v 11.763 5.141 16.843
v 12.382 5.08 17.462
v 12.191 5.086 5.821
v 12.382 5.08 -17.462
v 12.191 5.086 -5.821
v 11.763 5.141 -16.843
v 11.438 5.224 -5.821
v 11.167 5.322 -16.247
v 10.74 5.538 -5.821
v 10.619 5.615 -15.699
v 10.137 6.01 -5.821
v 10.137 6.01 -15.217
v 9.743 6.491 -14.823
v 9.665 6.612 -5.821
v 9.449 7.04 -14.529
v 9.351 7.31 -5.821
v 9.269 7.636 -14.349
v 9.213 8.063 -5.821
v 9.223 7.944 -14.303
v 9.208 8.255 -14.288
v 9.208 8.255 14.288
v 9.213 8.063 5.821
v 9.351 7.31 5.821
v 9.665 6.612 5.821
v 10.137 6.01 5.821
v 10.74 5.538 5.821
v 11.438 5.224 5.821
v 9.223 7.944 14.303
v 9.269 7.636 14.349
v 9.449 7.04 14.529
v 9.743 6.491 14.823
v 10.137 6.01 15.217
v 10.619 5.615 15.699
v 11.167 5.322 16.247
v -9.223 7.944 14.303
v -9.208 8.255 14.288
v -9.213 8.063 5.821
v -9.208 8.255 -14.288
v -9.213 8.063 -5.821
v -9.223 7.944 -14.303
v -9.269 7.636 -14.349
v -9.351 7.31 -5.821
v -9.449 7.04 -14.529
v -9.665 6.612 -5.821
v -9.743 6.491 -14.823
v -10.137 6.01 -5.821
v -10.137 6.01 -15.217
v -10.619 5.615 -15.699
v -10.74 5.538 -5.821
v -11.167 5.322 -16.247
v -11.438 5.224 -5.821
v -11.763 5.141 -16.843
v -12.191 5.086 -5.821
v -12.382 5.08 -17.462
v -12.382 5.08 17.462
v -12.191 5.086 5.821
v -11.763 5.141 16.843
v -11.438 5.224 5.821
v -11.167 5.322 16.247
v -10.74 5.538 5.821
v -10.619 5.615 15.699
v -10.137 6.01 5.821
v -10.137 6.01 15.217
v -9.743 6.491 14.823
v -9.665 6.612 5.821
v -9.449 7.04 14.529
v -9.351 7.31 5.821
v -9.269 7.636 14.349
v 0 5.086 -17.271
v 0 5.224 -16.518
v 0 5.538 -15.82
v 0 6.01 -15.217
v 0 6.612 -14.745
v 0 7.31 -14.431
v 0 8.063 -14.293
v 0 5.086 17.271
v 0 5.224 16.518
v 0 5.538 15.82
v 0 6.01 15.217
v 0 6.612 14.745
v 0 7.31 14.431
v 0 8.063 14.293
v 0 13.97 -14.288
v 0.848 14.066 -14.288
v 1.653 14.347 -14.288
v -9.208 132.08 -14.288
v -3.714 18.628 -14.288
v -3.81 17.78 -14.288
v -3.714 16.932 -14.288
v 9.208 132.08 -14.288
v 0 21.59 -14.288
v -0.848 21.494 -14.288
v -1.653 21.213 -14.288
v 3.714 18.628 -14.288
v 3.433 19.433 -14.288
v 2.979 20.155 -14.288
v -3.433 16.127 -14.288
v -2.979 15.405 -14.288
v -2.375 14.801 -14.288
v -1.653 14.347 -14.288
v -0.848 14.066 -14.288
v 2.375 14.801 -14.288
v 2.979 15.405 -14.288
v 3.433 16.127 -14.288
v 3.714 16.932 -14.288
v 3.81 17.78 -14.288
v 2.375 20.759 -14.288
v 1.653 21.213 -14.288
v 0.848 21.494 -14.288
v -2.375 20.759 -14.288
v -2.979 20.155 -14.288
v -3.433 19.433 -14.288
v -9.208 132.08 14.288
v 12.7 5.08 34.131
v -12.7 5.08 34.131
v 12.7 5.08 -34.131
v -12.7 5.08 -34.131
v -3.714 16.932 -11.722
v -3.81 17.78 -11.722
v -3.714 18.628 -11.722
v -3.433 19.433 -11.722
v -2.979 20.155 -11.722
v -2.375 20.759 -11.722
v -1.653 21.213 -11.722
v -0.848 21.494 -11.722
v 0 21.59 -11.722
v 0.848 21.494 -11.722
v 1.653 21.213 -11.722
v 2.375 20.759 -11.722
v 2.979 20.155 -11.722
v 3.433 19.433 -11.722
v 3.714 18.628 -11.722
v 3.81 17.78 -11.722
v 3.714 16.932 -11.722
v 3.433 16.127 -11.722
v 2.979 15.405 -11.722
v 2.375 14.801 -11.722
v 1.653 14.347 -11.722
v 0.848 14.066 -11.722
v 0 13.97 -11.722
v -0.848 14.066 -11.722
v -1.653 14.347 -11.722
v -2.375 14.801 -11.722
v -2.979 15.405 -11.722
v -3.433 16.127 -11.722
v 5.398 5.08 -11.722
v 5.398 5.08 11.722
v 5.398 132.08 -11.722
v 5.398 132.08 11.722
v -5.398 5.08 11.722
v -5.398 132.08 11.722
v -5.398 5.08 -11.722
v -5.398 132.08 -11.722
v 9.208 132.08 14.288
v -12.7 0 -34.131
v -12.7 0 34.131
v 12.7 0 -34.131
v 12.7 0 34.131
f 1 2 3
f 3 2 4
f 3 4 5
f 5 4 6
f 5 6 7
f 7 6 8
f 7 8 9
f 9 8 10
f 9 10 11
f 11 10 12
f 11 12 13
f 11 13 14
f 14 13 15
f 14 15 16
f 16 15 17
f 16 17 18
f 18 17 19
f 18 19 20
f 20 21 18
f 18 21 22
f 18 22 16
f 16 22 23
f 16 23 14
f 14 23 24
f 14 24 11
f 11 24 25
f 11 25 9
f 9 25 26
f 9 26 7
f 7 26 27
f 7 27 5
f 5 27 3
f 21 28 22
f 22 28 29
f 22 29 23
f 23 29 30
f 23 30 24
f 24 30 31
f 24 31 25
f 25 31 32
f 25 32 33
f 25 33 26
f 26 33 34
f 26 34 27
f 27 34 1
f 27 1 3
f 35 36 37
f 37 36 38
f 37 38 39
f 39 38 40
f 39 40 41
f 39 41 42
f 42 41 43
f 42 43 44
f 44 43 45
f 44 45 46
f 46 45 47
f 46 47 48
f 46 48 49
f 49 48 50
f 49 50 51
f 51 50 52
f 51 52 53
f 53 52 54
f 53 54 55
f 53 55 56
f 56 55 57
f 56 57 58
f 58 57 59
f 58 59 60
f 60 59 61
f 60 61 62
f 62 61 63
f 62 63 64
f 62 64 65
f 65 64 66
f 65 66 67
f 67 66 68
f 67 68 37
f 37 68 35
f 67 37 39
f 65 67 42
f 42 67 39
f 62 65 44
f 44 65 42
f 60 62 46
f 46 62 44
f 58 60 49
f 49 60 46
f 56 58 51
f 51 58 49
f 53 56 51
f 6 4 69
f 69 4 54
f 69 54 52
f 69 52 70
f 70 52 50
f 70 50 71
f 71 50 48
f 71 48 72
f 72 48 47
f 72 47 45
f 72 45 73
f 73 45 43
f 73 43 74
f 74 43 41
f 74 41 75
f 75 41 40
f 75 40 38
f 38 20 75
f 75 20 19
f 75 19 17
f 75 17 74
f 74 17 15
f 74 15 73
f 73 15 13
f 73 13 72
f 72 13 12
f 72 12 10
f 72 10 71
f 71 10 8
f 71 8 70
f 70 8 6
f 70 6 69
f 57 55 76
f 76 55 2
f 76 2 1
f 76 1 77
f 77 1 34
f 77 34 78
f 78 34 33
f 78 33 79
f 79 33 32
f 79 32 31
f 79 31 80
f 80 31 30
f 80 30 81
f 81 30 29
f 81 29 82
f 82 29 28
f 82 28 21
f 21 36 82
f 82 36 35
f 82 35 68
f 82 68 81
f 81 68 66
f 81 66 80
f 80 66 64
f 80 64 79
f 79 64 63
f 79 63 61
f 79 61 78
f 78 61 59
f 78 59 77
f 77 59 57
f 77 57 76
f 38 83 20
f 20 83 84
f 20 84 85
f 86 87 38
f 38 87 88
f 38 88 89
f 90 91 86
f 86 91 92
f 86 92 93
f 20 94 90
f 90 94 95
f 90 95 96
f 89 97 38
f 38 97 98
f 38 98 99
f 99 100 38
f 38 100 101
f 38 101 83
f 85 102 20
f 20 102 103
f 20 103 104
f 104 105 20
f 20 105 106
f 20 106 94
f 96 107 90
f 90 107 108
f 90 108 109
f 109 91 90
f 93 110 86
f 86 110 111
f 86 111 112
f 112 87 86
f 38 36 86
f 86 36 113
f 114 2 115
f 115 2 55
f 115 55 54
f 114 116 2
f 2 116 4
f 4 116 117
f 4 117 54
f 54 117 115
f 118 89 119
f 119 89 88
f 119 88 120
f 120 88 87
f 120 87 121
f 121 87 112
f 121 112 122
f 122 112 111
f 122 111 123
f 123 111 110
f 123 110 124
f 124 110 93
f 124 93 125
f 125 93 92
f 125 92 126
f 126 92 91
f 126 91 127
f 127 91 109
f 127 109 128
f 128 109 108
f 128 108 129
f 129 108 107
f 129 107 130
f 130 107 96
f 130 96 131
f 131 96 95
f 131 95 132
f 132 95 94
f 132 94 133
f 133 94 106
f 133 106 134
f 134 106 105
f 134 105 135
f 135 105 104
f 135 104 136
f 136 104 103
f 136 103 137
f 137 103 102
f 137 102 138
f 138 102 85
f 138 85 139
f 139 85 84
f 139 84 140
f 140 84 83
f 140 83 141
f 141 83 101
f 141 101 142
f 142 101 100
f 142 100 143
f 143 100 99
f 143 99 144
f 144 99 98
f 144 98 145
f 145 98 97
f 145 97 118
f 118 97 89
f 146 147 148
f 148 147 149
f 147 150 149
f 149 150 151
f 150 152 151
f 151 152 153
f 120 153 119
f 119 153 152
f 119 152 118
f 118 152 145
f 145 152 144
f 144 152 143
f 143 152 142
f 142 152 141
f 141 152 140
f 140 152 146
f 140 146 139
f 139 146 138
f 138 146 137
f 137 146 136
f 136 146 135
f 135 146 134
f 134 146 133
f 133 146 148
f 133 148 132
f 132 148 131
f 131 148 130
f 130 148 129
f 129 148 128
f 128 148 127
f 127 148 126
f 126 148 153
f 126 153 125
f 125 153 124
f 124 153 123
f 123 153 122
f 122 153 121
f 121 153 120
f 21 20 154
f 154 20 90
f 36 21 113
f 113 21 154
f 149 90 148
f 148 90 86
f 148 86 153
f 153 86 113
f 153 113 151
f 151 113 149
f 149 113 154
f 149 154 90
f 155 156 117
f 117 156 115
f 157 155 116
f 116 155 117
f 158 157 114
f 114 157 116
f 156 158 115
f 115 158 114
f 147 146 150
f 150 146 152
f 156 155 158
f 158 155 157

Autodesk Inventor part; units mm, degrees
ref_plane "YZ Plane" through (0, 0, 0) normal (1, 0, 0) x (0, 1, 0)
ref_plane "XZ Plane" through (0, 0, 0) normal (0, 1, 0) x (-1, 0, 0)
ref_plane "XY Plane" through (0, 0, 0) normal (0, 0, 1) x (1, 0, 0)
sketch "Sketch1" plane through (0, 0, 0) normal (0, 1, 0) x (-1, 0, 0)
  line L0 (12.7, 34.1313) -> (-12.7, 34.1313)
  line L1 (-12.7, 34.1313) -> (-12.7, -34.1313)
  line L2 (-12.7, -34.1313) -> (12.7, -34.1313)
  line L3 (12.7, -34.1313) -> (12.7, 34.1313)
  line L4 (12.7, 34.1313) -> (-12.7, -34.1313) construction
  line L5 (-12.7, 34.1313) -> (12.7, -34.1313) construction
  point P0 (0, 0)
  dimension "d0" = 25.4
  dimension "d1" = 68.2625
extrude "Extrusion1" add sketch "Sketch1" along normal blind 5.08
sketch "Sketch2" plane through (0, 5.08, 0) normal (0, 1, 0) x (1, 0, 0)
  line L0 (-5.3975, 11.7221) -> (5.3975, 11.7221)
  line L1 (5.3975, 11.7221) -> (5.3975, -11.7221)
  line L2 (5.3975, -11.7221) -> (-5.3975, -11.7221)
  line L3 (-5.3975, -11.7221) -> (-5.3975, 11.7221)
  line L4 (-5.3975, 11.7221) -> (5.3975, -11.7221) construction
  line L5 (5.3975, 11.7221) -> (-5.3975, -11.7221) construction
  line L6 (-9.2075, 14.2875) -> (9.2075, 14.2875)
  line L7 (9.2075, 14.2875) -> (9.2075, -14.2875)
  line L8 (9.2075, -14.2875) -> (-9.2075, -14.2875)
  line L9 (-9.2075, -14.2875) -> (-9.2075, 14.2875)
  line L10 (-9.2075, 14.2875) -> (9.2075, -14.2875) construction
  line L11 (9.2075, 14.2875) -> (-9.2075, -14.2875) construction
  point P0 (0, 0)
  dimension "d4" = 10.795
  dimension "d5" = 23.4442
  dimension "d6" = 18.415
  dimension "d7" = 28.575
extrude "Extrusion2" add sketch "Sketch2" along normal blind 127
sketch "Sketch4" plane through (0, 132.08, 0) normal (0, 1, 0) x (1, 0, 0)
  point P0 (0, 0)
sketch "Sketch6" plane through (0, 5.08, 0) normal (0, 1, 0) x (1, 0, 0)
  point P0 (0, 0)
sketch "Sketch7" plane through (9.2075, 5.08, -14.2875) normal (0, 0, -1) x (-1, 0, 0)
  line L0 (-3.4925, 0) -> (21.9075, 0) projected
  circle A0 centre (9.2075, 12.7) radius 3.81
  point P0 (9.2075, -5.08)
  dimension "d13" = 12.7
  dimension "d14" = 7.62
extrude "Extrusion4" cut sketch "Sketch7" against normal blind 5.08
fillet "Fillet1" radius 3.175 4 edges at (0, 5.08, -14.2875) (-9.2075, 5.08, 0) (0, 5.08, 14.2875) (9.2075, 5.08, 0)
properties part number "Bacon1"
